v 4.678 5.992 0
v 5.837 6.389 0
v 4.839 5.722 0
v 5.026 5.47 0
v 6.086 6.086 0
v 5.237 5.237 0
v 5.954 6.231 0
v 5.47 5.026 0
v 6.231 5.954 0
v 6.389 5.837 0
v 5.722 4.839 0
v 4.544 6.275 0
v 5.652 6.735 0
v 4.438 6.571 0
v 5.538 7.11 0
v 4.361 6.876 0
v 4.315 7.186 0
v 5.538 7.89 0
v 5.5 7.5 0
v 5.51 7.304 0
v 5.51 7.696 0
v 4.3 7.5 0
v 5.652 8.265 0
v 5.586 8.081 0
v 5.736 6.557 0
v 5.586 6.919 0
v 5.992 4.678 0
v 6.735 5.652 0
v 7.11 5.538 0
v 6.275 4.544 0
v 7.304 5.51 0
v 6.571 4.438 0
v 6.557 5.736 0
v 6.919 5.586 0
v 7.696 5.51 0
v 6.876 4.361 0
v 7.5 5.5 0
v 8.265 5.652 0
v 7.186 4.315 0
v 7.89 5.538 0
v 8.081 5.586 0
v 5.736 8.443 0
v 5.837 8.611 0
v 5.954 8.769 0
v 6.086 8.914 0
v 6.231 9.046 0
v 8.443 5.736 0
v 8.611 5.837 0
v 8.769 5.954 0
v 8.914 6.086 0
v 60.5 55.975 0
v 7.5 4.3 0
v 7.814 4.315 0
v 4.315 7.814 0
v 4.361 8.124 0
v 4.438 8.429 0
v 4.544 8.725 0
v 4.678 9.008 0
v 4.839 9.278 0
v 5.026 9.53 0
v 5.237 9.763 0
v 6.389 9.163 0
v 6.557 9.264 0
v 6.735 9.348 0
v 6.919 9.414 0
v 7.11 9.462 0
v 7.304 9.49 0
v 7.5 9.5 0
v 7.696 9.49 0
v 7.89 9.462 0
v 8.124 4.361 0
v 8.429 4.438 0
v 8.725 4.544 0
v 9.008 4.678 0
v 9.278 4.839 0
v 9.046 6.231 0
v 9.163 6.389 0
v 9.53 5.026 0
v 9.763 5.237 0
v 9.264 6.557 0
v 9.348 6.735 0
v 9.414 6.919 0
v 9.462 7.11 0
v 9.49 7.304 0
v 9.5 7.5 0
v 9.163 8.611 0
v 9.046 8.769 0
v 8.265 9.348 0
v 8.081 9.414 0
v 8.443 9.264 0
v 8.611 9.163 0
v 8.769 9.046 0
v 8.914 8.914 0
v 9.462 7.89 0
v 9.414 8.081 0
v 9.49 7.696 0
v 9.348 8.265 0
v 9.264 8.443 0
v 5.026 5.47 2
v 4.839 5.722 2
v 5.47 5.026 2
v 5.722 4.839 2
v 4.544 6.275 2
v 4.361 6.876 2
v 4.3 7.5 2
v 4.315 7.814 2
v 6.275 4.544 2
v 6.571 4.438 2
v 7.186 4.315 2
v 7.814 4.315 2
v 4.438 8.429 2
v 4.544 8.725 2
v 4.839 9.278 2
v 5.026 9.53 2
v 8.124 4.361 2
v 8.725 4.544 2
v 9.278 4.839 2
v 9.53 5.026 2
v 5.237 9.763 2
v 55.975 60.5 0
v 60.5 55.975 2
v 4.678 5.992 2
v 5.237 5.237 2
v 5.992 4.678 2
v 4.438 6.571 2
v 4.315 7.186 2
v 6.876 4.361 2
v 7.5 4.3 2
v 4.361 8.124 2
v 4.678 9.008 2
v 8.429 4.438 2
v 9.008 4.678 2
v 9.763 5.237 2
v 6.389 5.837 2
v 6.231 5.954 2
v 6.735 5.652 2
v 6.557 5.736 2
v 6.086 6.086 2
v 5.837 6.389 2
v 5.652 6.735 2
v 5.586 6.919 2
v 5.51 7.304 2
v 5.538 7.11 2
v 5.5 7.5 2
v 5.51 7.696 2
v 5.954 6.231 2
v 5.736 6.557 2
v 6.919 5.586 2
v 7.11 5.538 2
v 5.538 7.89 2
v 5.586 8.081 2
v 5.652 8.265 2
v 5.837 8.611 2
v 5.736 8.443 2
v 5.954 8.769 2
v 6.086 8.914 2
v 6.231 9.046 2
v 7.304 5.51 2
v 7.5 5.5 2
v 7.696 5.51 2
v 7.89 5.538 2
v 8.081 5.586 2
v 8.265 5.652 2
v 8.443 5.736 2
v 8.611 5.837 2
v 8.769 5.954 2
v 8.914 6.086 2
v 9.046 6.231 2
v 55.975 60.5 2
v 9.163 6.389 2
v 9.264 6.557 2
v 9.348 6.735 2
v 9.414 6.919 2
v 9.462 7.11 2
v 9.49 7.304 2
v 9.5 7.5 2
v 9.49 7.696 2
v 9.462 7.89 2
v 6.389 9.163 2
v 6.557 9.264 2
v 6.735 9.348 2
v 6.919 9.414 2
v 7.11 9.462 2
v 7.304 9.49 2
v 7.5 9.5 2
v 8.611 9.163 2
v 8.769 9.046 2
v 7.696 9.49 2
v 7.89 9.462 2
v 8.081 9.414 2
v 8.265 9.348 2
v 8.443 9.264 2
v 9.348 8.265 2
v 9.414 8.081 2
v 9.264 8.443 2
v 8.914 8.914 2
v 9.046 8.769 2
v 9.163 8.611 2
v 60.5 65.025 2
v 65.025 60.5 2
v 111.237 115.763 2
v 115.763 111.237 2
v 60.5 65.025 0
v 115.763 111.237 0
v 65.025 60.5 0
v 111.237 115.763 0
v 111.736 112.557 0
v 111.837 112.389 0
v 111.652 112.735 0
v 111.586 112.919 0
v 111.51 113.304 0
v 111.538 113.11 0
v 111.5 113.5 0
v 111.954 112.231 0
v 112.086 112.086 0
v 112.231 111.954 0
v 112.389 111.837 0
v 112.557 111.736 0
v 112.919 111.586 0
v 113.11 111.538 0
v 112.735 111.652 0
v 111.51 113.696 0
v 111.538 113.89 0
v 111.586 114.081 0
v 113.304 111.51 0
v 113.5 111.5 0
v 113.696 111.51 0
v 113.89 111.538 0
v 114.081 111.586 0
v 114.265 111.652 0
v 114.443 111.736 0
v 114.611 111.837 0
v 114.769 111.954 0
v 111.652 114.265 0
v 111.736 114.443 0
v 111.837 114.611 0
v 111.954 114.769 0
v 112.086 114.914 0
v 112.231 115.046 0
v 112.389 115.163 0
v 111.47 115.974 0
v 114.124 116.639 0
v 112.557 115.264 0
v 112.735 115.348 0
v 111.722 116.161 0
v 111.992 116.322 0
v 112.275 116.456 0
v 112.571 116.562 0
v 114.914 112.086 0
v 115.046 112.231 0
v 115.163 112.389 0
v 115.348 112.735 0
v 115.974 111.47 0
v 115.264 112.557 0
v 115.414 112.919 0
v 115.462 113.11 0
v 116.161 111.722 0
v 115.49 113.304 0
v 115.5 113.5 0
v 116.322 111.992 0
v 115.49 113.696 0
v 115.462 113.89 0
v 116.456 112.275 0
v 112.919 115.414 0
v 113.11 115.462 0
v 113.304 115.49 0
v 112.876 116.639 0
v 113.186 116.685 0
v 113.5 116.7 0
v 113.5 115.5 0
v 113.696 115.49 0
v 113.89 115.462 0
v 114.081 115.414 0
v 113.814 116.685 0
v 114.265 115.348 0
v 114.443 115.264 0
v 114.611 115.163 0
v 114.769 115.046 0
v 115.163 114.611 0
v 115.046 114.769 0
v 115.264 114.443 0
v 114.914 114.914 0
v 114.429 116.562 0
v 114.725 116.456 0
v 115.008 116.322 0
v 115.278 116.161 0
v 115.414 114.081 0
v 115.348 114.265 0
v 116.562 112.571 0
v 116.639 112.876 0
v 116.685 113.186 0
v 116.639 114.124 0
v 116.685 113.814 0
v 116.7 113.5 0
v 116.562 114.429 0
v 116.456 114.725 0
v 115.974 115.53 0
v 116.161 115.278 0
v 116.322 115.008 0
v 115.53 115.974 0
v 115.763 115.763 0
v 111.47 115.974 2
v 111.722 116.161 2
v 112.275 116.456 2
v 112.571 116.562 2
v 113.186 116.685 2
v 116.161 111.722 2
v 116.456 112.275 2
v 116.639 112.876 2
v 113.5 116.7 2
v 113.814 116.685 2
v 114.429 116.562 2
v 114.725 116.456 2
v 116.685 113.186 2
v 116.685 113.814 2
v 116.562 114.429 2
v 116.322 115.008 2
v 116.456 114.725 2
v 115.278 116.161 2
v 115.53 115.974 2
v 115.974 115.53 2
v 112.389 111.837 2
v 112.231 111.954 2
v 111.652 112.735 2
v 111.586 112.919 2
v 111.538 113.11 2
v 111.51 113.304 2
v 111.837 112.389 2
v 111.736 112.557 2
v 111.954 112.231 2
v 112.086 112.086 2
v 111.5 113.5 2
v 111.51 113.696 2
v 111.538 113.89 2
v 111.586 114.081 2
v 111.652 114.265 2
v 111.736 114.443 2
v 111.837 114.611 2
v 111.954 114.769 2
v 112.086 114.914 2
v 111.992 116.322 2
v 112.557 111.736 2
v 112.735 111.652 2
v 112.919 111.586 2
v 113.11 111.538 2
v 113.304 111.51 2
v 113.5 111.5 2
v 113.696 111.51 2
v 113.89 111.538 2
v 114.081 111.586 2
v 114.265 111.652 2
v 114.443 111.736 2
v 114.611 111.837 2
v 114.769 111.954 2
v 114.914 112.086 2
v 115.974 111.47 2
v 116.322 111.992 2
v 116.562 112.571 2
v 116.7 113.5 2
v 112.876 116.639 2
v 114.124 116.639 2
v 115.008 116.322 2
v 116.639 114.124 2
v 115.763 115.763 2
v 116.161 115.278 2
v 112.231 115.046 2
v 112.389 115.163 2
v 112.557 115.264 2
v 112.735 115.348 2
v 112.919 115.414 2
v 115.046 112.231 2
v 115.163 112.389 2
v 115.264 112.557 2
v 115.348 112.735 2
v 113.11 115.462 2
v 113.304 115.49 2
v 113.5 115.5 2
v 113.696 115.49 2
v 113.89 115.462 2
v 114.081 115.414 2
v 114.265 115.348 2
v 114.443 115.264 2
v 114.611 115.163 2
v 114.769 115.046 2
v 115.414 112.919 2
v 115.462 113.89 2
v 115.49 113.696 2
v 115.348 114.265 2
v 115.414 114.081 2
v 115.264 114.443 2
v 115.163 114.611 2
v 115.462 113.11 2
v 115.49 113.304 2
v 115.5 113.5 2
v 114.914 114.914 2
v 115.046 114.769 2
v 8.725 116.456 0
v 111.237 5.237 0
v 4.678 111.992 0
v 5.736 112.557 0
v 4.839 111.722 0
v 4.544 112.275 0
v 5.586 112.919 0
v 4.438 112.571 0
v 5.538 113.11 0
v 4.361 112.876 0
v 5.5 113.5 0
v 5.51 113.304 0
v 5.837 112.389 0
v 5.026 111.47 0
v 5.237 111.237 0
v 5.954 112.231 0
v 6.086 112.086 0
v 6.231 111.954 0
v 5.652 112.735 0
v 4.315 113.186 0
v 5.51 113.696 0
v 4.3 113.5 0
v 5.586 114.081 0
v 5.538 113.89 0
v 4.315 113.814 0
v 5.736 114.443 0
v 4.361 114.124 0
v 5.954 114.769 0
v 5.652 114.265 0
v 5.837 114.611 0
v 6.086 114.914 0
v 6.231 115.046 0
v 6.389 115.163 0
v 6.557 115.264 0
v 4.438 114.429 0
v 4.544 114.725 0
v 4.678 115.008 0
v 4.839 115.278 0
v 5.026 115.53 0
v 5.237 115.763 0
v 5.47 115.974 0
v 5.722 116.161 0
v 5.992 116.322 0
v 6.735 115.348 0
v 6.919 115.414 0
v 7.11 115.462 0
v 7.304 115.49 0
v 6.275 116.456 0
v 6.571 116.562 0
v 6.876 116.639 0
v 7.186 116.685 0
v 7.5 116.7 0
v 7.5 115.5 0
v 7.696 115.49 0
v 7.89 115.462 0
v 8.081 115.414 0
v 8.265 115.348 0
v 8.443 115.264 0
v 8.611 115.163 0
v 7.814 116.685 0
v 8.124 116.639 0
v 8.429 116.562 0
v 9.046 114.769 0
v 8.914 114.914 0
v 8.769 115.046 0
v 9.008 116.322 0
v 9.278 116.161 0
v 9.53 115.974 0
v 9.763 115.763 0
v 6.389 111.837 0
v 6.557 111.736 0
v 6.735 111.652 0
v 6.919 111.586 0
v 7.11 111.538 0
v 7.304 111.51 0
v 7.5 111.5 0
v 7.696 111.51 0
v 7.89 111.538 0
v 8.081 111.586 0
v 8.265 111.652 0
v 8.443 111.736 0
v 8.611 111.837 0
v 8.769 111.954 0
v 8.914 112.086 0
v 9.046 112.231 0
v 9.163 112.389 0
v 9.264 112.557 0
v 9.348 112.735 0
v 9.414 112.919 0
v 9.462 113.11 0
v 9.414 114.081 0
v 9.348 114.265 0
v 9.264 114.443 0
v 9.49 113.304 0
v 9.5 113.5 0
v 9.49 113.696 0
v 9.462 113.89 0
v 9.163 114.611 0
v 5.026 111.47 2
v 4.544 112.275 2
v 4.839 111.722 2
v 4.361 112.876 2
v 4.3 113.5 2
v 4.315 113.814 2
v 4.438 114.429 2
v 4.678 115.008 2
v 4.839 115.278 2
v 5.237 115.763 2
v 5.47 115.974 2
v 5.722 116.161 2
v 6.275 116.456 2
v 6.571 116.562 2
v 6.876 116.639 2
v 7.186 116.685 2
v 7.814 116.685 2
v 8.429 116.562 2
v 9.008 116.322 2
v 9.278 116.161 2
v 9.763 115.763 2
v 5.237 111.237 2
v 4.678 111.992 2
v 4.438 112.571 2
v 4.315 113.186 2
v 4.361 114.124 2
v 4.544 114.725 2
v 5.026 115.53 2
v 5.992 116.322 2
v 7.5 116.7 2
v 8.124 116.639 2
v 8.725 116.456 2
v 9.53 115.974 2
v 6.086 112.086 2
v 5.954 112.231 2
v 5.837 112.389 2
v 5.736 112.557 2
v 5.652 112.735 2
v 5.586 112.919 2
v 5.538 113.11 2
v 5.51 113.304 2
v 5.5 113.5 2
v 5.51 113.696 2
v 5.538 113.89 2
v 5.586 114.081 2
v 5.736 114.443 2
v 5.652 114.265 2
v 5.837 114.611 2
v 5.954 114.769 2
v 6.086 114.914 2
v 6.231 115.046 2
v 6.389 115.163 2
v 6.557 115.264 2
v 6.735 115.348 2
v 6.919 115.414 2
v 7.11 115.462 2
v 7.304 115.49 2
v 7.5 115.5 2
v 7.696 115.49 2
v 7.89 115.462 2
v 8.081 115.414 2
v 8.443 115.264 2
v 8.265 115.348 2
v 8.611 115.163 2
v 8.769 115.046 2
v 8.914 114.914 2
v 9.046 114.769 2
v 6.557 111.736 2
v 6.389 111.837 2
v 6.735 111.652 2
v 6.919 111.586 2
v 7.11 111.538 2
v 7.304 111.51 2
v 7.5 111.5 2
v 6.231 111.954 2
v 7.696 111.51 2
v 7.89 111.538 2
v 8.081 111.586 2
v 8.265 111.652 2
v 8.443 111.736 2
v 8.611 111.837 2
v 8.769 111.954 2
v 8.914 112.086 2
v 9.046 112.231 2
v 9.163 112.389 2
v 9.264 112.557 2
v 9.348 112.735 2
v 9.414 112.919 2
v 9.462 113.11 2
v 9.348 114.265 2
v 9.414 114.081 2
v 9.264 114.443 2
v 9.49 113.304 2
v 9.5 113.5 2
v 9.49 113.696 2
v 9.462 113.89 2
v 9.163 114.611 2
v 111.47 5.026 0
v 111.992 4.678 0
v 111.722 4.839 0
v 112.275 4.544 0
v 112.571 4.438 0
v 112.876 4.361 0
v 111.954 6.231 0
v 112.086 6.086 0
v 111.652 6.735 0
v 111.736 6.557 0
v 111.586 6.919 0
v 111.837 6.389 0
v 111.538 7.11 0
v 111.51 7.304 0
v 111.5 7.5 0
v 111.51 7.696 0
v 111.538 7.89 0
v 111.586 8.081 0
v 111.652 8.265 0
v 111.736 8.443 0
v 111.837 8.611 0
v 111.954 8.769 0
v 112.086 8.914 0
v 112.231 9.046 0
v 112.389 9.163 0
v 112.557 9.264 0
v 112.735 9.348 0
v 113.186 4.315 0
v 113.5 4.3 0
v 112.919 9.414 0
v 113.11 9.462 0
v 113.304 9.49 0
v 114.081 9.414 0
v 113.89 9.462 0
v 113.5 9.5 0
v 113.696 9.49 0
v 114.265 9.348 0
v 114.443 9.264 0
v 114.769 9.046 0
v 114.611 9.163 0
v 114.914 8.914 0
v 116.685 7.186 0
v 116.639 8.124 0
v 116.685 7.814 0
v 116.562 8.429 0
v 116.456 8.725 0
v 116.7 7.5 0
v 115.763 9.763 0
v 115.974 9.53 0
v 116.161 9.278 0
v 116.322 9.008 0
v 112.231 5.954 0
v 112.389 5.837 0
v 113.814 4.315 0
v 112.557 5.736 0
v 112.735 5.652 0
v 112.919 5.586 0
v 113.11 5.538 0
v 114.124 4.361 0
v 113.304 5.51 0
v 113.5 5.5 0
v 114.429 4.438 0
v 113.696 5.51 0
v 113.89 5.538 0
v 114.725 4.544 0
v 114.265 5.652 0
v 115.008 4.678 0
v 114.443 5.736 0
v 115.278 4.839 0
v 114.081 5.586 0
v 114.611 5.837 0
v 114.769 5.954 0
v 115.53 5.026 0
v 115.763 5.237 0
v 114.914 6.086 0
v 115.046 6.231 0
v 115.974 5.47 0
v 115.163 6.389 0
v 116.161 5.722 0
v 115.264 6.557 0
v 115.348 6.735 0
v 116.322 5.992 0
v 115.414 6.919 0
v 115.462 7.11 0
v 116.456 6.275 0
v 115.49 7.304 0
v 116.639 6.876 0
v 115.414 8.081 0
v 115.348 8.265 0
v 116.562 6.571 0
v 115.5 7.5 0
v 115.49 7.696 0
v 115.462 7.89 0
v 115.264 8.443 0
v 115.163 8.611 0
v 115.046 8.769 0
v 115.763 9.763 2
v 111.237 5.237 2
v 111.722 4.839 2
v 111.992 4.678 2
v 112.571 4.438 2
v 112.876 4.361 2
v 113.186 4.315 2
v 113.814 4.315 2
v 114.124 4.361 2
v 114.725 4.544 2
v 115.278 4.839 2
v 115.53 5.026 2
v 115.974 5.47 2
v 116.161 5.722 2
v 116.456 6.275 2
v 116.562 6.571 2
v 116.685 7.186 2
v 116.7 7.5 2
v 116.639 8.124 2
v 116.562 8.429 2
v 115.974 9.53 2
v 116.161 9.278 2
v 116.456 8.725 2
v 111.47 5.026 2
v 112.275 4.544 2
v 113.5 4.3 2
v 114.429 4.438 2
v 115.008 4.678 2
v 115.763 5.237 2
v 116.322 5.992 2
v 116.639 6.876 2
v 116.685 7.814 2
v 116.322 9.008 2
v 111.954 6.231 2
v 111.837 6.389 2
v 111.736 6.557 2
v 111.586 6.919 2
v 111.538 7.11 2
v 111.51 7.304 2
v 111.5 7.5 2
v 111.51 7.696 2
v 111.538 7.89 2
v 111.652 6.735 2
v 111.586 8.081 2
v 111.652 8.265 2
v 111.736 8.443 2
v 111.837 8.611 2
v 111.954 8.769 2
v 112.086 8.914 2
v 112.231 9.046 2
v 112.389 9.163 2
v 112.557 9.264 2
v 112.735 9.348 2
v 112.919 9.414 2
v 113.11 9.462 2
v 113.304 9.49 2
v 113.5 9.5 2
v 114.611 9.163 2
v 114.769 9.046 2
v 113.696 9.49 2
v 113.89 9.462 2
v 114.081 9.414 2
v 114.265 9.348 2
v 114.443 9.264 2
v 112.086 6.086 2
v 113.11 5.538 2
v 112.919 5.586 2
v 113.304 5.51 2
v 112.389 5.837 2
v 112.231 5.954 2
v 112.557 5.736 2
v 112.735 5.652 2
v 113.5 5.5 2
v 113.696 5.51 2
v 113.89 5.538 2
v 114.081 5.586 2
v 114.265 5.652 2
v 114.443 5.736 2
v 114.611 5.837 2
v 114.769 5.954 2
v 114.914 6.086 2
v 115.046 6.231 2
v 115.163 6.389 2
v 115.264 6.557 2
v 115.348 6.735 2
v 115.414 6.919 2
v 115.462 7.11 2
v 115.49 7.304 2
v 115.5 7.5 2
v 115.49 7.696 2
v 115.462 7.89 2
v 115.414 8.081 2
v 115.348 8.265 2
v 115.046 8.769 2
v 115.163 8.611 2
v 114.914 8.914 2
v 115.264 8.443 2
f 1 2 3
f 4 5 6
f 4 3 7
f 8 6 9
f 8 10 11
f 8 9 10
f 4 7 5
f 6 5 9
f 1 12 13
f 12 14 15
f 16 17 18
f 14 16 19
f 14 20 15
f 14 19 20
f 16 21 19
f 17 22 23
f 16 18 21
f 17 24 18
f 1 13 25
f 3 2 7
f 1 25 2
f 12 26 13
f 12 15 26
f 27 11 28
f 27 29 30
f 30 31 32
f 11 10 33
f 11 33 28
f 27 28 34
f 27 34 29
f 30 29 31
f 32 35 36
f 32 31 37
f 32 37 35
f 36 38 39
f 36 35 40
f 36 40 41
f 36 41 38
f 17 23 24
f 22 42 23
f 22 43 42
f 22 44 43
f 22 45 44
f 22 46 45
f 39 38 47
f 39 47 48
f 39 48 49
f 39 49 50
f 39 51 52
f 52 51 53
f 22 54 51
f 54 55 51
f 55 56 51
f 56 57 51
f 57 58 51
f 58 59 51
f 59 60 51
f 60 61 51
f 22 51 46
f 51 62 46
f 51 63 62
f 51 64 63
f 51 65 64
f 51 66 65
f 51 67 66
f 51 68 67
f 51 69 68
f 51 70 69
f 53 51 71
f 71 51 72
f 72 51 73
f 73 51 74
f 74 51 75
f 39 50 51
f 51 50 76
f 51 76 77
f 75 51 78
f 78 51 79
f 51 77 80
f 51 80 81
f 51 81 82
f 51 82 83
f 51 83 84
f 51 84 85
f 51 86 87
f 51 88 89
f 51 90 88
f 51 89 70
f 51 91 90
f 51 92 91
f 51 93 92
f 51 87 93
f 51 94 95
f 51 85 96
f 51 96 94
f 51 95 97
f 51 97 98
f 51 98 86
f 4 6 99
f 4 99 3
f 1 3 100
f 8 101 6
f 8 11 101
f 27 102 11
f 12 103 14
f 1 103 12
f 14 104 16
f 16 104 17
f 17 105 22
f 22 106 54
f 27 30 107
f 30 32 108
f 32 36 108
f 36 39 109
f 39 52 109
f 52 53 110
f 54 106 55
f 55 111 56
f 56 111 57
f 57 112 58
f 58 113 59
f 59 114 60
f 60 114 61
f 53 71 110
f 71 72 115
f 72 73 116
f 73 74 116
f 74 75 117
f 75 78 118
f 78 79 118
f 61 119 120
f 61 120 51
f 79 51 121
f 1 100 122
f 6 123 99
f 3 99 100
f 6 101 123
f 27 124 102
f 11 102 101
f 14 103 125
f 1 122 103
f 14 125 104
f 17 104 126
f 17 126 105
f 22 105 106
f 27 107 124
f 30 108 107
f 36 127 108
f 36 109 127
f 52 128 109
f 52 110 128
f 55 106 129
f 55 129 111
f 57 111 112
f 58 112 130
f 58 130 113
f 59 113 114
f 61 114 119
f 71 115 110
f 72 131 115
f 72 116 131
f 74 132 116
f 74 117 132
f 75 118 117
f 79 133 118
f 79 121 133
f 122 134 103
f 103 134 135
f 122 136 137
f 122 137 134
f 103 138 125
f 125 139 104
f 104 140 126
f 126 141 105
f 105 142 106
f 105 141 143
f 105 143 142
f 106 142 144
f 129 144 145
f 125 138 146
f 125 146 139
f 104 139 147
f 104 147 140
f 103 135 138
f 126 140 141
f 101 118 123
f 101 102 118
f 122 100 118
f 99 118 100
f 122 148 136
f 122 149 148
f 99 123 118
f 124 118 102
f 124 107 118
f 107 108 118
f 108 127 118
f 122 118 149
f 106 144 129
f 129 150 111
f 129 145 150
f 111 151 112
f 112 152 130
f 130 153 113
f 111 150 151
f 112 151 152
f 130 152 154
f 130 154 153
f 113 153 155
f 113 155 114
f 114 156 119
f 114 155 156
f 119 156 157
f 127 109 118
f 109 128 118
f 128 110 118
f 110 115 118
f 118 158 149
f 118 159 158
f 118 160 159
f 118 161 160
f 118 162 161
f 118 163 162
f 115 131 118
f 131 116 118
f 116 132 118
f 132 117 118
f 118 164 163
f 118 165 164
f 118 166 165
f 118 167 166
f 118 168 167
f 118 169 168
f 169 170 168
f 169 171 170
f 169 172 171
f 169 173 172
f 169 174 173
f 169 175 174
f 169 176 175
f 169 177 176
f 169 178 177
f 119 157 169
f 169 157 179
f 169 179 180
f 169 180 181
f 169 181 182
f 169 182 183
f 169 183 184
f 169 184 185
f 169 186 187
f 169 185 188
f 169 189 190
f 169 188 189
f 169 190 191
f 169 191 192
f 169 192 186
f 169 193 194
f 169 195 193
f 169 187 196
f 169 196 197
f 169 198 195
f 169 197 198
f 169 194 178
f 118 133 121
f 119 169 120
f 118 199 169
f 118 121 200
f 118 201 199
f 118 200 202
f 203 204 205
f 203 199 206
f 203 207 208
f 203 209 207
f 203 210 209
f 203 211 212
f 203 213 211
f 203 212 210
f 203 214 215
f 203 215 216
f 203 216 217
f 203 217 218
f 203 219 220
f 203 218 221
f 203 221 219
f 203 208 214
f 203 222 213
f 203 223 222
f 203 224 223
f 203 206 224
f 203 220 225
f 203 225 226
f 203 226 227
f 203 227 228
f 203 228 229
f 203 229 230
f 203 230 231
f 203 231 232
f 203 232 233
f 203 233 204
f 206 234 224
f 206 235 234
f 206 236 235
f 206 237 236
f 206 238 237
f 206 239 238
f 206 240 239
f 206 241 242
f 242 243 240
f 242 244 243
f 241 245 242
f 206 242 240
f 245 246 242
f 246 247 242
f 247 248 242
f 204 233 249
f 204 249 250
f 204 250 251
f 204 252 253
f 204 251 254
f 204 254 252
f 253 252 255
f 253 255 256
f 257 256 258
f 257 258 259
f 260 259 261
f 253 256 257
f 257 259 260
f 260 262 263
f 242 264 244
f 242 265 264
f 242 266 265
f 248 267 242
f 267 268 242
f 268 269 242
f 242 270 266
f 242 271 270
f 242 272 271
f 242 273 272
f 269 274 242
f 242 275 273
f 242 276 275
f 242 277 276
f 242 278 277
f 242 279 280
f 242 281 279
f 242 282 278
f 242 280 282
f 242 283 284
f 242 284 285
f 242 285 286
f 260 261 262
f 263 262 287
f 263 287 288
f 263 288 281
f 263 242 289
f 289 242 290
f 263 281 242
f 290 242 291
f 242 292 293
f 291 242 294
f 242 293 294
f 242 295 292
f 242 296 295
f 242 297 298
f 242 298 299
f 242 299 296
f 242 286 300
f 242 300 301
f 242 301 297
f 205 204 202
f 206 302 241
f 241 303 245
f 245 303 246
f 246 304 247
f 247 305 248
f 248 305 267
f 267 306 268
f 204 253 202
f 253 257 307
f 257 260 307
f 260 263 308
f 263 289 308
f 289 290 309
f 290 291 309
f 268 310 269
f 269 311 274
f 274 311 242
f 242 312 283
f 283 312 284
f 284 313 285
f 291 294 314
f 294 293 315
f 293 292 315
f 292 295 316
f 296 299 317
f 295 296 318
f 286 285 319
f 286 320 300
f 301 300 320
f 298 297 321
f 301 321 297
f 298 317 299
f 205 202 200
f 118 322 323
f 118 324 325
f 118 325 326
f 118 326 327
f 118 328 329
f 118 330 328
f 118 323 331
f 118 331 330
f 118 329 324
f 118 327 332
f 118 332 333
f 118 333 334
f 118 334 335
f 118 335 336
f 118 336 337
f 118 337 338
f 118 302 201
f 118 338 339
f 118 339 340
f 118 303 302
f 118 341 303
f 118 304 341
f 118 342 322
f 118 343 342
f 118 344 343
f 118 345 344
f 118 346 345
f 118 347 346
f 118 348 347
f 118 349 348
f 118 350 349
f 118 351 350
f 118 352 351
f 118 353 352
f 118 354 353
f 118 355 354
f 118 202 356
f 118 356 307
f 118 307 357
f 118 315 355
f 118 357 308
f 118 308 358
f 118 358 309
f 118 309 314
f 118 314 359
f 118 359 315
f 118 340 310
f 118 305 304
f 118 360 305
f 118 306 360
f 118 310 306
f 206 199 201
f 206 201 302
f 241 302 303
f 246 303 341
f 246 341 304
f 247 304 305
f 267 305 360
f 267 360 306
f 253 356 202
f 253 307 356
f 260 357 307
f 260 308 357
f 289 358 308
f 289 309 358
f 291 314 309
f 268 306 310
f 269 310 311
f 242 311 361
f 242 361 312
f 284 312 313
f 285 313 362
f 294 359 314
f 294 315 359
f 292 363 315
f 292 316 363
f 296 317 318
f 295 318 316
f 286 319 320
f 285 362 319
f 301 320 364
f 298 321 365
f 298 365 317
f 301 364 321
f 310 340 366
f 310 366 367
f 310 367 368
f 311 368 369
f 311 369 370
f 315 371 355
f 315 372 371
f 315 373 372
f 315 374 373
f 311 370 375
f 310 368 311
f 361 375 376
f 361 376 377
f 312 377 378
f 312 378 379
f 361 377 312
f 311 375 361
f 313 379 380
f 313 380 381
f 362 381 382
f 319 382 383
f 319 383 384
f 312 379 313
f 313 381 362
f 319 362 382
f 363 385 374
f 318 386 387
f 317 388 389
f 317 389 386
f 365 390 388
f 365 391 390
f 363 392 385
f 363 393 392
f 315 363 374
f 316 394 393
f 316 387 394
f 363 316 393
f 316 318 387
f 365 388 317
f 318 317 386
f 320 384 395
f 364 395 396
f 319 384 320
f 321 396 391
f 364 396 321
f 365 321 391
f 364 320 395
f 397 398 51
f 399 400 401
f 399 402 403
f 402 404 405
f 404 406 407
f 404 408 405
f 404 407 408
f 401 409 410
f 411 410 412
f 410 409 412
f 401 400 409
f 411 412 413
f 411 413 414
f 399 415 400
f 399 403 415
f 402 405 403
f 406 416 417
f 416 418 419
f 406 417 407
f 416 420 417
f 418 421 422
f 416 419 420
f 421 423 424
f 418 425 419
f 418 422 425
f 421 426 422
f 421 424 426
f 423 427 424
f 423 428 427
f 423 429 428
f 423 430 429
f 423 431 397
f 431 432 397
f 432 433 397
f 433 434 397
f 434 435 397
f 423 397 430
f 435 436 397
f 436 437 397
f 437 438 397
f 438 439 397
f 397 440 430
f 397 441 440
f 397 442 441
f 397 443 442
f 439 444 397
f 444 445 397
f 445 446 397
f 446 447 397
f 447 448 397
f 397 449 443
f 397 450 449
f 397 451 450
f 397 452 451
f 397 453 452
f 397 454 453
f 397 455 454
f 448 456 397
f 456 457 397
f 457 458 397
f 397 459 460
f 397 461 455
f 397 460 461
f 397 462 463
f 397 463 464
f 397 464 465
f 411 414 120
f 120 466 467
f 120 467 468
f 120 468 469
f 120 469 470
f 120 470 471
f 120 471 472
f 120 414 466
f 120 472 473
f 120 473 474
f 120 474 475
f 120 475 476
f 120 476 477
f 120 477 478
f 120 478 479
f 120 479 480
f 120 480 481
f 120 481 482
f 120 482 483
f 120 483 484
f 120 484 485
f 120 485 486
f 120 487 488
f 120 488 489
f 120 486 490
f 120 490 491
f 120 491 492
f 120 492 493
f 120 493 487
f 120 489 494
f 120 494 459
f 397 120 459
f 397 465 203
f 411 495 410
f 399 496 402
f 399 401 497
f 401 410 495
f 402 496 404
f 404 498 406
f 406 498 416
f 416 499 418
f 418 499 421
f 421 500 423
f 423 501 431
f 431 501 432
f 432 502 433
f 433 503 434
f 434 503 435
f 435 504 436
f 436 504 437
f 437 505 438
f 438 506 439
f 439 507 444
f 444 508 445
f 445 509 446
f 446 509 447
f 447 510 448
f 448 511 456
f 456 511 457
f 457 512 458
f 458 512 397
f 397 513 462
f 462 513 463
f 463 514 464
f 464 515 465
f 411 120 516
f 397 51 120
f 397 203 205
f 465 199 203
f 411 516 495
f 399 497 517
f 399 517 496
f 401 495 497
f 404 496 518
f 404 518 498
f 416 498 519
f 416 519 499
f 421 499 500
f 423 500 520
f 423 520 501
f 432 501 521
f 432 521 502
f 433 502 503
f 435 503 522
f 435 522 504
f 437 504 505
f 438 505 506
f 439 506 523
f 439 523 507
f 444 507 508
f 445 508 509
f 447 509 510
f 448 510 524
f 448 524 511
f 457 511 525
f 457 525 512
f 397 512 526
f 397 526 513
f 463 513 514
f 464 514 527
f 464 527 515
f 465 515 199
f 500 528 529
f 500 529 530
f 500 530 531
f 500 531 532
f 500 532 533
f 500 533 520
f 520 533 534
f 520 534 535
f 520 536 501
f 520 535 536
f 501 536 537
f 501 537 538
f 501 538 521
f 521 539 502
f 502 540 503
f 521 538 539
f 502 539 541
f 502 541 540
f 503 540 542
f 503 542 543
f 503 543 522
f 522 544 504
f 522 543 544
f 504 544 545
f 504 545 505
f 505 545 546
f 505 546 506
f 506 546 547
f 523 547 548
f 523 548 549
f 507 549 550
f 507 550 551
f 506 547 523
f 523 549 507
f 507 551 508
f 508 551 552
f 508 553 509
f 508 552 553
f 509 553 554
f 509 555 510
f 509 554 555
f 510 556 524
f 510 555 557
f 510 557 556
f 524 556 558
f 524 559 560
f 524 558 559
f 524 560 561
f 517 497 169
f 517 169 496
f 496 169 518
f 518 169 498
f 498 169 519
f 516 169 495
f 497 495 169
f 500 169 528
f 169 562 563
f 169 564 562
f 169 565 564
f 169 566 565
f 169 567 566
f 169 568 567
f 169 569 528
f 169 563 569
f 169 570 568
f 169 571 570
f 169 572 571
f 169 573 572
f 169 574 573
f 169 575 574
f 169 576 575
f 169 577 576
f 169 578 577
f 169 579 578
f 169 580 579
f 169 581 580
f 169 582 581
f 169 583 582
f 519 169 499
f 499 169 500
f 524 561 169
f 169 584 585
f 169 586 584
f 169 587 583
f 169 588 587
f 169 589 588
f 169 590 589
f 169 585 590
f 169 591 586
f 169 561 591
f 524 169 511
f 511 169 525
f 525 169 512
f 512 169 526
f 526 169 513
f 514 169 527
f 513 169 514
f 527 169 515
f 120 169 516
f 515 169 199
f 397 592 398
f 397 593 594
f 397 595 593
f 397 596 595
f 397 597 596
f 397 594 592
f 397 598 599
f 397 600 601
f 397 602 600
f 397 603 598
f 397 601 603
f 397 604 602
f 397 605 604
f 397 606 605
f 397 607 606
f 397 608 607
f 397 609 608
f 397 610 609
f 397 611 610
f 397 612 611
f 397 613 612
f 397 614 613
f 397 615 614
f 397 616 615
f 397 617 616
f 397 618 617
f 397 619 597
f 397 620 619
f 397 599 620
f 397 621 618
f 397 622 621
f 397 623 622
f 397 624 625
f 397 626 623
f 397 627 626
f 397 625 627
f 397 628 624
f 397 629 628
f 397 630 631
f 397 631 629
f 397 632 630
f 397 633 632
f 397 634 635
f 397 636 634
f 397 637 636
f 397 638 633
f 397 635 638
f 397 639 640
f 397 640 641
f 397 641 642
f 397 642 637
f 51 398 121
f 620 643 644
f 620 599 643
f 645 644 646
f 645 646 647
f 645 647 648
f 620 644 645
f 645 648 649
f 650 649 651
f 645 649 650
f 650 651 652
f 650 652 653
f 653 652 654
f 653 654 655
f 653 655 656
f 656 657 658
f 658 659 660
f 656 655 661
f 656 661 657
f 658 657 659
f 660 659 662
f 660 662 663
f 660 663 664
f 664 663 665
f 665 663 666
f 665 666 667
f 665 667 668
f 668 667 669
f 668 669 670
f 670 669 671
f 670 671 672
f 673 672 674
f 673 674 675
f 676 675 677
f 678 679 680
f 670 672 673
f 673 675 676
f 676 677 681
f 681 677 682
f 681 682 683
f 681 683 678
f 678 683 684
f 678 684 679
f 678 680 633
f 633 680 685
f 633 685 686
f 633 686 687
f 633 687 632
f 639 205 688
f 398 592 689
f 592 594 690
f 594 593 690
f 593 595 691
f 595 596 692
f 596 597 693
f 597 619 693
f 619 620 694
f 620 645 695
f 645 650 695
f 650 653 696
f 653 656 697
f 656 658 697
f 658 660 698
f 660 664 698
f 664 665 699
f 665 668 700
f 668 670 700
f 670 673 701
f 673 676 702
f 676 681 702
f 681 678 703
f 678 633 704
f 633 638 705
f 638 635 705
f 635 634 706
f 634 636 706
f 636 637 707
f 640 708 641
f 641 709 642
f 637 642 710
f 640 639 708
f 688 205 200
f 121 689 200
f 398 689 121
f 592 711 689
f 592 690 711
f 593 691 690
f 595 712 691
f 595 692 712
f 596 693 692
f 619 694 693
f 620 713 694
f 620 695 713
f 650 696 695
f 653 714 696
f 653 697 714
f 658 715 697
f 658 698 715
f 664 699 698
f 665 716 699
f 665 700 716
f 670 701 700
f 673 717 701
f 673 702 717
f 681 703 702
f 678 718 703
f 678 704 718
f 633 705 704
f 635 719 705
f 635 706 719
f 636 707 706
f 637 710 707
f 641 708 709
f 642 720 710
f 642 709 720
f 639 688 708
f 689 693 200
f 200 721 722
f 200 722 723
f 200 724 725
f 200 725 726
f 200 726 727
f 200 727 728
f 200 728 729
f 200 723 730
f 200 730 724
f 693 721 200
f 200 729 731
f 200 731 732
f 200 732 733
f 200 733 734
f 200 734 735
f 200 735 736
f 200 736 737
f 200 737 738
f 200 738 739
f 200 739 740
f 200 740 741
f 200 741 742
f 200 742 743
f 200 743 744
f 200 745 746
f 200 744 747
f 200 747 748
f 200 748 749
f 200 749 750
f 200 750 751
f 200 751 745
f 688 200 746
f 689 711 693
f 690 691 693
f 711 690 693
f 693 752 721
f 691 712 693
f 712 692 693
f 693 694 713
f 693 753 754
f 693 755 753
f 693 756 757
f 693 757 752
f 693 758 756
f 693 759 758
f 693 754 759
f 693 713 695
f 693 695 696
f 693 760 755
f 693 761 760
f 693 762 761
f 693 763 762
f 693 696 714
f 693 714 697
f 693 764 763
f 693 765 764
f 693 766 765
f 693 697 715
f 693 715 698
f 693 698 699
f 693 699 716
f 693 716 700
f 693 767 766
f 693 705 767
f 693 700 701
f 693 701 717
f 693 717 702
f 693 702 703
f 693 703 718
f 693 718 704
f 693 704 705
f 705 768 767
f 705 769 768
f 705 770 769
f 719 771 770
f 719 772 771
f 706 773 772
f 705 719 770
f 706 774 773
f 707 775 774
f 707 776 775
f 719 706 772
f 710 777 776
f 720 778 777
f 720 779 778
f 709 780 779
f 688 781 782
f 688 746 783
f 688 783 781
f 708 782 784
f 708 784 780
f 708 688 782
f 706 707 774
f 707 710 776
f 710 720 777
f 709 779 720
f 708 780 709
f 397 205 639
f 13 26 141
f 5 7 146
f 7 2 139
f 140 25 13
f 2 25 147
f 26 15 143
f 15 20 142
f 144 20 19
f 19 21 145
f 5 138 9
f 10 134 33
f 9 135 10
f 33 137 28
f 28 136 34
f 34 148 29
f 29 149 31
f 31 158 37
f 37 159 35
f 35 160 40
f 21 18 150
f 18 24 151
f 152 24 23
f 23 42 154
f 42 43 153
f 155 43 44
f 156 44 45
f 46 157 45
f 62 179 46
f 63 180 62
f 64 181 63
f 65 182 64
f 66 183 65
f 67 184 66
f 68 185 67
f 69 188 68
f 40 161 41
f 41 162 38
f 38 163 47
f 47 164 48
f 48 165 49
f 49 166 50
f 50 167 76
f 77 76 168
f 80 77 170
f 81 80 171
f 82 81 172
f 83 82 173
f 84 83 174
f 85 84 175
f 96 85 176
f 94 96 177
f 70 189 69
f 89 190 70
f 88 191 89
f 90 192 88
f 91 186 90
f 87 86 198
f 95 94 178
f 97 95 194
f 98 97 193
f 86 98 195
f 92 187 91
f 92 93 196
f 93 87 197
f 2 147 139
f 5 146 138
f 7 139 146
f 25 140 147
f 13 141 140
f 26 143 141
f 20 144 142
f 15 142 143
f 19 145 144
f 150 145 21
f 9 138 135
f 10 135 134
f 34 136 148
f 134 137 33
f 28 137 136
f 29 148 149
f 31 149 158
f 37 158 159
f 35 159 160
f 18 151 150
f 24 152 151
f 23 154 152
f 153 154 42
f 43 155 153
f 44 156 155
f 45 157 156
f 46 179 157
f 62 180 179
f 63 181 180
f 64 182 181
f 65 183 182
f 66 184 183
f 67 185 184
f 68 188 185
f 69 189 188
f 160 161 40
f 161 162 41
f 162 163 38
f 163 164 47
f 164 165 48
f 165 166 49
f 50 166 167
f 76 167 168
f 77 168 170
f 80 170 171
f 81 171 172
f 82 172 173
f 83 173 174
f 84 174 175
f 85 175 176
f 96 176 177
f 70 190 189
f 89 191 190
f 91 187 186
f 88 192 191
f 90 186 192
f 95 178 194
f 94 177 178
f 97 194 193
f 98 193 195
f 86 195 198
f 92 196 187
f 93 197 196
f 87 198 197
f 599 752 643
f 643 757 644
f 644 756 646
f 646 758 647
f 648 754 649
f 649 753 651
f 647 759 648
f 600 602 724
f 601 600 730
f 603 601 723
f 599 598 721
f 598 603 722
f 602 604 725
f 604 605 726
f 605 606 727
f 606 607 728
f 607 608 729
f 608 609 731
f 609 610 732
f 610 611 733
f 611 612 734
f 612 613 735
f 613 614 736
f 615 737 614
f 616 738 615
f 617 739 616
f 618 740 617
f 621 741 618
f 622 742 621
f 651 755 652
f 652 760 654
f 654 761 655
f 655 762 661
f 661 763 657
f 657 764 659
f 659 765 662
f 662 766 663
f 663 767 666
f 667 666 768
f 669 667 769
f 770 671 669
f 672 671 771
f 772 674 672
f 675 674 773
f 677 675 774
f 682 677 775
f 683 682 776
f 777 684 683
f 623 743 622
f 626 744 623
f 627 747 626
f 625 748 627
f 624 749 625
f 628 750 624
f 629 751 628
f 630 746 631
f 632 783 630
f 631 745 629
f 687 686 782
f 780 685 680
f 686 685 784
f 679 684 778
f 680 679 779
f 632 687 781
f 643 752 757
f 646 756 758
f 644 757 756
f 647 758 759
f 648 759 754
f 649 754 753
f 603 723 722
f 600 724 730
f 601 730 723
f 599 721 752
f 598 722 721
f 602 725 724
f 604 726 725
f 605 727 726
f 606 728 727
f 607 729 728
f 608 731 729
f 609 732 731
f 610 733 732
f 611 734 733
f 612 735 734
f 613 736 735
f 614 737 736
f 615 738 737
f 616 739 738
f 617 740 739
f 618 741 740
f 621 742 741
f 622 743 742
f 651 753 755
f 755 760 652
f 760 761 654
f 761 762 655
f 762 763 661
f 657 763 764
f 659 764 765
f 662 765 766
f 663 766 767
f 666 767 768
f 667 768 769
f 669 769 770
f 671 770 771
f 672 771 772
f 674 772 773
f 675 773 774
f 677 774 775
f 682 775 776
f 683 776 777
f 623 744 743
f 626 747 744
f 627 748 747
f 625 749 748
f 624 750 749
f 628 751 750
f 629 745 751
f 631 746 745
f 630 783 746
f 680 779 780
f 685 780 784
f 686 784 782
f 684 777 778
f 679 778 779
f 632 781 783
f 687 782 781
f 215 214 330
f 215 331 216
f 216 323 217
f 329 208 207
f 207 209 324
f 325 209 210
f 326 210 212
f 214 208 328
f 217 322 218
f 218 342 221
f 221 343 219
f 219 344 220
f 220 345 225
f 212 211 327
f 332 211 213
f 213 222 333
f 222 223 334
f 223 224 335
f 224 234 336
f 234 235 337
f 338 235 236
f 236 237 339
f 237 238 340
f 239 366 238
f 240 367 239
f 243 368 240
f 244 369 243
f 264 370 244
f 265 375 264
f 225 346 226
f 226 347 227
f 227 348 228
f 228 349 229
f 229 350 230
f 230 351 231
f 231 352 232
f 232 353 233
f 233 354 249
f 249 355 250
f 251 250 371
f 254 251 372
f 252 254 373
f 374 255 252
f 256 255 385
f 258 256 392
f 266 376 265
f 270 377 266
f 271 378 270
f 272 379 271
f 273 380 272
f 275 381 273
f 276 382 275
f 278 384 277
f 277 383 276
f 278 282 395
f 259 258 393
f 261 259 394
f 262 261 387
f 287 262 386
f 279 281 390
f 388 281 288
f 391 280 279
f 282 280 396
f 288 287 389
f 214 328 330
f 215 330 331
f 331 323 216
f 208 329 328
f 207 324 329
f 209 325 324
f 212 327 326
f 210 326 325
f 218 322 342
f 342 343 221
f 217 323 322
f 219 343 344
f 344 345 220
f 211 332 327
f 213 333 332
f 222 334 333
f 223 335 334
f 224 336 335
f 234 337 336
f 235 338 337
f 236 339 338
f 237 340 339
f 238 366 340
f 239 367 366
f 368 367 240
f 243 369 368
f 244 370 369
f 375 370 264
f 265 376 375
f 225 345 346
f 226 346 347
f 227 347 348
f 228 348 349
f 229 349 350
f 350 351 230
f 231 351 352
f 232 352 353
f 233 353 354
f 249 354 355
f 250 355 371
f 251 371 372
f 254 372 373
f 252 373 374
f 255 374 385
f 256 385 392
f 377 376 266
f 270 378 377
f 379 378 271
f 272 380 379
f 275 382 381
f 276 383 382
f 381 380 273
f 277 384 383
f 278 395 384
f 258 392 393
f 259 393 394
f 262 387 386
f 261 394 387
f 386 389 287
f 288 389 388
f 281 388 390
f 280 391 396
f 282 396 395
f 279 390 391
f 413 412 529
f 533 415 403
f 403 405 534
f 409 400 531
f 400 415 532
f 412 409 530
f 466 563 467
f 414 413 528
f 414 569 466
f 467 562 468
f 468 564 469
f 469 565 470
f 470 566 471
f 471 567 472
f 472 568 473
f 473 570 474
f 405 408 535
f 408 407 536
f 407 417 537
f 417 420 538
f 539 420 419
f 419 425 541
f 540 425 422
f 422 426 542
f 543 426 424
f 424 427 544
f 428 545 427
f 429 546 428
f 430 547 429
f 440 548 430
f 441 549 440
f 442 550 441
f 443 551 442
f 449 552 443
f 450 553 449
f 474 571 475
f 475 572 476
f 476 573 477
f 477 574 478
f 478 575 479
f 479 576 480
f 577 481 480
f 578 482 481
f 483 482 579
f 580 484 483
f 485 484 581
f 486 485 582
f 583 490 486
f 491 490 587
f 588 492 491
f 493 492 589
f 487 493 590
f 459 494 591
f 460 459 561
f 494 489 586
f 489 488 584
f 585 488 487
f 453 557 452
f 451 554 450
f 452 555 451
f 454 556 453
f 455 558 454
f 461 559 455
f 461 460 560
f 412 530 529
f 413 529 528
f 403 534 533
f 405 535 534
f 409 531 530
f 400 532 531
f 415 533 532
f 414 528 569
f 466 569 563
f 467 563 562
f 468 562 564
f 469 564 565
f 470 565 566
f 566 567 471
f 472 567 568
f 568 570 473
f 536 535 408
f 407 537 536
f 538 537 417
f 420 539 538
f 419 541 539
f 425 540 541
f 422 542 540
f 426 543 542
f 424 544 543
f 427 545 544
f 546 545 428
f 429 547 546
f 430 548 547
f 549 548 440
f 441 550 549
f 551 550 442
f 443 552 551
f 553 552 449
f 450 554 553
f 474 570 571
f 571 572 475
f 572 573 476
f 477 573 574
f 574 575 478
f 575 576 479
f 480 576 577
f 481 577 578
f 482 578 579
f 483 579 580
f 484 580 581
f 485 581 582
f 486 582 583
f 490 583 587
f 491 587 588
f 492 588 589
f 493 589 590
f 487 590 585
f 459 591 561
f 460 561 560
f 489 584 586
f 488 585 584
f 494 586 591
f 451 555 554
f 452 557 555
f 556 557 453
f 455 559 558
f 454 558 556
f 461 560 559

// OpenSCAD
edge = 121;
border_radius = 8;
bottom_height = 1.5;

overlap_height = 9;
filter_height = 10;
height = overlap_height + filter_height;

$fn = 64;

module base() {
  difference() {
    hull() {
      translate([border_radius, border_radius, 0]) cylinder(r=8, h=height);
      translate([edge - border_radius, border_radius, 0]) cylinder(r=8, h=height);
      translate([border_radius, edge - border_radius, 0]) cylinder(r=8, h=height);
      translate([edge - border_radius, edge - border_radius, 0]) cylinder(r=8, h=height);
    }
    ;

    hull() {
      translate([border_radius + 1, border_radius + 1, bottom_height]) cylinder(r=8, h=height);
      translate([edge - border_radius - 1, border_radius + 1, bottom_height]) cylinder(r=8, h=height);
      translate([border_radius + 1, edge - border_radius - 1, bottom_height]) cylinder(r=8, h=height);
      translate([edge - border_radius - 1, edge - border_radius - 1, bottom_height]) cylinder(r=8, h=height);
    }
    ;
  }
}

module mounts() {
  translate([7.5, 7.5, 0]) cylinder(r1=2, r2=1.7, h=height);
  translate([edge - 7.5, 7.5, 0]) cylinder(r1=2, r2=1.7, h=height);
  translate([edge - 7.5, edge - 7.5, 0]) cylinder(r1=2, r2=1.7, h=height);
  translate([7.5, edge - 7.5, 0]) cylinder(r1=2, r2=1.7, h=height);
}

module base_with_cutout() {
  difference() {
    base();
    translate([edge / 2, edge / 2, -0.1]) cylinder(r=edge / 2.1, h=3);
  }
  mounts();
}
;

module mount_holes() {
  translate([7.5, 7.5, 0]) cylinder(r=2, h=height);
  translate([edge - 7.5, 7.5, 0]) cylinder(r=2, h=height);
  translate([edge - 7.5, edge - 7.5, 0]) cylinder(r=2, h=height);
  translate([7.5, edge - 7.5, 0]) cylinder(r=2, h=height);
}

module grid() {
  difference() {
    union() {
      hull() {
        translate([7.5, 7.5, 0]) cylinder(r=3.2, h=2);
        translate([edge - 7.5, edge - 7.5, 0]) cylinder(r=3.2, h=2);
      }

      hull() {
        translate([edge - 7.5, 7.5, 0]) cylinder(r=3.2, h=2);
        translate([7.5, edge - 7.5, 0]) cylinder(r=3.2, h=2);
      }
    }
    translate([0, 0, -0.1]) mount_holes();
  }
}

grid();
// base_with_cutout();
